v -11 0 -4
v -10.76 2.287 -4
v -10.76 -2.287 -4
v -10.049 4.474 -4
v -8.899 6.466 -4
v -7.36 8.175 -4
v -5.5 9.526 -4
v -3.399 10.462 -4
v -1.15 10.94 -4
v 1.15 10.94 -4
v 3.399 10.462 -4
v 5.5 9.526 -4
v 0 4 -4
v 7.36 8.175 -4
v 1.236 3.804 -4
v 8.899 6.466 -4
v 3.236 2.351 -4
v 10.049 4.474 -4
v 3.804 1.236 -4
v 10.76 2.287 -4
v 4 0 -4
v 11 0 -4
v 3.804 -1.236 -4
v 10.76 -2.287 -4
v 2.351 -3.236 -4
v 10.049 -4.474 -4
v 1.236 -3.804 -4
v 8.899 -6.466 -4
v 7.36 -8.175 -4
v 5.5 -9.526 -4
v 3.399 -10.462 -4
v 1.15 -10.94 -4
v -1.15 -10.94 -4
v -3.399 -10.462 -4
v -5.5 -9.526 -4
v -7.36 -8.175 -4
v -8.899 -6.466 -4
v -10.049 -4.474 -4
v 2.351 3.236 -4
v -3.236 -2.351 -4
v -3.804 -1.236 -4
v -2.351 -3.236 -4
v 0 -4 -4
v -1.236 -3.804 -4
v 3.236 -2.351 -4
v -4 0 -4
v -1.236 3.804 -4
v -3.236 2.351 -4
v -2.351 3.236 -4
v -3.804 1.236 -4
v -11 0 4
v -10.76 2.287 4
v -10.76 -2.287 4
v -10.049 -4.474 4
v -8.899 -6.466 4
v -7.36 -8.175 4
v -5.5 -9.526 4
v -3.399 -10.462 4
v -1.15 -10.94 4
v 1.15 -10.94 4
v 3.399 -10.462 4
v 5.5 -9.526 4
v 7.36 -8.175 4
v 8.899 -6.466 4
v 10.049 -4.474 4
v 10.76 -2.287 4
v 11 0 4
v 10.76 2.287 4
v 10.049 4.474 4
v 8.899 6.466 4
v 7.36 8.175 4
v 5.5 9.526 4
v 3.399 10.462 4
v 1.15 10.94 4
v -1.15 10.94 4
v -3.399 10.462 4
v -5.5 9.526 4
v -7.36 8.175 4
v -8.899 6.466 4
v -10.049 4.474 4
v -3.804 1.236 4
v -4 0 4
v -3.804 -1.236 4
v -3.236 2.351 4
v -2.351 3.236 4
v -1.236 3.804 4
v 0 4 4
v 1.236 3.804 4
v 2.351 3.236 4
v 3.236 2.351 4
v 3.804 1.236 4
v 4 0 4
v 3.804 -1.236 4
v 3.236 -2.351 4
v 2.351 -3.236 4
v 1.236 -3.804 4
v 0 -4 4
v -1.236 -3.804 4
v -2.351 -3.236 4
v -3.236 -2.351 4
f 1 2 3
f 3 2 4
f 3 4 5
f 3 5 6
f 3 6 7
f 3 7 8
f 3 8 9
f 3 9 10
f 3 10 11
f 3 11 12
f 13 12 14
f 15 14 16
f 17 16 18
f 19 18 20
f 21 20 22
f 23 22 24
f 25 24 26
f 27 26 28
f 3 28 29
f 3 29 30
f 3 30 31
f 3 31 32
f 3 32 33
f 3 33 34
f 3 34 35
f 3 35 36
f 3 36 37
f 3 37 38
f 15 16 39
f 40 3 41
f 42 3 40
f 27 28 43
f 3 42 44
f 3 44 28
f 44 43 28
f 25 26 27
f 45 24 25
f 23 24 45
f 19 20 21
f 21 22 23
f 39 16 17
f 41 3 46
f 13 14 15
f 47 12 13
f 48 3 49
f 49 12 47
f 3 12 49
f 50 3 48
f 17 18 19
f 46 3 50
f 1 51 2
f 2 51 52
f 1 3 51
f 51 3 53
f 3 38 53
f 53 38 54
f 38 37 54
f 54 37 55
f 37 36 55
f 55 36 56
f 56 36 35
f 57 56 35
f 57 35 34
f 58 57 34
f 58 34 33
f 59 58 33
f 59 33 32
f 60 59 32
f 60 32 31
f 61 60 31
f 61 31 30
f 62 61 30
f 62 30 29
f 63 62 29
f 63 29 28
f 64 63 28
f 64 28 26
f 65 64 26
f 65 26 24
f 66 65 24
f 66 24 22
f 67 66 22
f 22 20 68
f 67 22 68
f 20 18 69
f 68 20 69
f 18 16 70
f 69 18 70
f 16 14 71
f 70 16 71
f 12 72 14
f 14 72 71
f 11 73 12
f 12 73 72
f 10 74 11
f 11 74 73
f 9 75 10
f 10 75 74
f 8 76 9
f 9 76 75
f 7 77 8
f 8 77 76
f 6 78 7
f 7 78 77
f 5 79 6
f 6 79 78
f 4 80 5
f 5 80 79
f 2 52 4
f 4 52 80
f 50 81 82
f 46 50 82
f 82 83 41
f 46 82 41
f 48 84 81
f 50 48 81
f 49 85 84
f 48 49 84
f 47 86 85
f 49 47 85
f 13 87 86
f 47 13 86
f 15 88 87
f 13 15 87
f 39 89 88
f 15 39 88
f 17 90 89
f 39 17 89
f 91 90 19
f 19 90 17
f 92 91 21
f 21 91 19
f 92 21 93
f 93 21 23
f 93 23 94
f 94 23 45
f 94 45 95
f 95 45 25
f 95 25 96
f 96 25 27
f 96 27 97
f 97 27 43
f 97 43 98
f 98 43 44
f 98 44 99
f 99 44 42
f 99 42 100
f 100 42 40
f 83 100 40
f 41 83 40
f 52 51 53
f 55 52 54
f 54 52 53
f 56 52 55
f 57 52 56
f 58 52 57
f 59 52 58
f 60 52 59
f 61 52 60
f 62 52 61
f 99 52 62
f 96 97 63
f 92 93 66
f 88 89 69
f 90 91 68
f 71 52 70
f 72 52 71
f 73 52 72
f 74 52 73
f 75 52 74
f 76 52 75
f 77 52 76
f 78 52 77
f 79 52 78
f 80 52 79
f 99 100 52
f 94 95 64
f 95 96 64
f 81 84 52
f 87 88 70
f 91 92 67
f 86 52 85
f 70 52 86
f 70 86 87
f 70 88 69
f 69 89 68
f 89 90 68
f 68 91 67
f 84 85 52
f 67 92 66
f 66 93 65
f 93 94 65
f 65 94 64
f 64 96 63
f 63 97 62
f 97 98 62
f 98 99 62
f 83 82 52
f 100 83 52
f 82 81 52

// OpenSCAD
difference() {
  cylinder(r=22/2, h=8, center=true, $fn=30);
  cylinder(r=8/2, h=15, center=true, $fn=20);
}
